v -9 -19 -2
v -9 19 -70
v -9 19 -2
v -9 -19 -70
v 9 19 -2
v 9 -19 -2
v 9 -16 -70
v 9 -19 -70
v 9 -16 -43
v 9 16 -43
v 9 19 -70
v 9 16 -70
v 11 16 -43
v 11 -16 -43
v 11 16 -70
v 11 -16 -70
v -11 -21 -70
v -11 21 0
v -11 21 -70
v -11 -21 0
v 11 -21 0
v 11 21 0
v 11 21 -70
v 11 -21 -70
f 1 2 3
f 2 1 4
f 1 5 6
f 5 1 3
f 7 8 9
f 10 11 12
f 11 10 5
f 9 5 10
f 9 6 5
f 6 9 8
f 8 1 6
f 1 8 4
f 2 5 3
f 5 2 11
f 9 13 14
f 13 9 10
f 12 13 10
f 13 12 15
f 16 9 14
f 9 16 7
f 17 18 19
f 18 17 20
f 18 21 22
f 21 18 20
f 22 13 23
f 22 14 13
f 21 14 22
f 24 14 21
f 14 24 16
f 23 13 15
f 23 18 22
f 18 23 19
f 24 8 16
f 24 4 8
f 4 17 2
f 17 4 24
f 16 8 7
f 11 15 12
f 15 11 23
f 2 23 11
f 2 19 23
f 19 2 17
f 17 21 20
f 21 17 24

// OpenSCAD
difference(){
    translate([0,0,-35])
        cube([22,42,70],true);
    union(){
        translate([0,0,-37])
            cube([18,38,70],true);  
        translate([20,0,-78])
            cube([28,32,70],true);  
    }
}
